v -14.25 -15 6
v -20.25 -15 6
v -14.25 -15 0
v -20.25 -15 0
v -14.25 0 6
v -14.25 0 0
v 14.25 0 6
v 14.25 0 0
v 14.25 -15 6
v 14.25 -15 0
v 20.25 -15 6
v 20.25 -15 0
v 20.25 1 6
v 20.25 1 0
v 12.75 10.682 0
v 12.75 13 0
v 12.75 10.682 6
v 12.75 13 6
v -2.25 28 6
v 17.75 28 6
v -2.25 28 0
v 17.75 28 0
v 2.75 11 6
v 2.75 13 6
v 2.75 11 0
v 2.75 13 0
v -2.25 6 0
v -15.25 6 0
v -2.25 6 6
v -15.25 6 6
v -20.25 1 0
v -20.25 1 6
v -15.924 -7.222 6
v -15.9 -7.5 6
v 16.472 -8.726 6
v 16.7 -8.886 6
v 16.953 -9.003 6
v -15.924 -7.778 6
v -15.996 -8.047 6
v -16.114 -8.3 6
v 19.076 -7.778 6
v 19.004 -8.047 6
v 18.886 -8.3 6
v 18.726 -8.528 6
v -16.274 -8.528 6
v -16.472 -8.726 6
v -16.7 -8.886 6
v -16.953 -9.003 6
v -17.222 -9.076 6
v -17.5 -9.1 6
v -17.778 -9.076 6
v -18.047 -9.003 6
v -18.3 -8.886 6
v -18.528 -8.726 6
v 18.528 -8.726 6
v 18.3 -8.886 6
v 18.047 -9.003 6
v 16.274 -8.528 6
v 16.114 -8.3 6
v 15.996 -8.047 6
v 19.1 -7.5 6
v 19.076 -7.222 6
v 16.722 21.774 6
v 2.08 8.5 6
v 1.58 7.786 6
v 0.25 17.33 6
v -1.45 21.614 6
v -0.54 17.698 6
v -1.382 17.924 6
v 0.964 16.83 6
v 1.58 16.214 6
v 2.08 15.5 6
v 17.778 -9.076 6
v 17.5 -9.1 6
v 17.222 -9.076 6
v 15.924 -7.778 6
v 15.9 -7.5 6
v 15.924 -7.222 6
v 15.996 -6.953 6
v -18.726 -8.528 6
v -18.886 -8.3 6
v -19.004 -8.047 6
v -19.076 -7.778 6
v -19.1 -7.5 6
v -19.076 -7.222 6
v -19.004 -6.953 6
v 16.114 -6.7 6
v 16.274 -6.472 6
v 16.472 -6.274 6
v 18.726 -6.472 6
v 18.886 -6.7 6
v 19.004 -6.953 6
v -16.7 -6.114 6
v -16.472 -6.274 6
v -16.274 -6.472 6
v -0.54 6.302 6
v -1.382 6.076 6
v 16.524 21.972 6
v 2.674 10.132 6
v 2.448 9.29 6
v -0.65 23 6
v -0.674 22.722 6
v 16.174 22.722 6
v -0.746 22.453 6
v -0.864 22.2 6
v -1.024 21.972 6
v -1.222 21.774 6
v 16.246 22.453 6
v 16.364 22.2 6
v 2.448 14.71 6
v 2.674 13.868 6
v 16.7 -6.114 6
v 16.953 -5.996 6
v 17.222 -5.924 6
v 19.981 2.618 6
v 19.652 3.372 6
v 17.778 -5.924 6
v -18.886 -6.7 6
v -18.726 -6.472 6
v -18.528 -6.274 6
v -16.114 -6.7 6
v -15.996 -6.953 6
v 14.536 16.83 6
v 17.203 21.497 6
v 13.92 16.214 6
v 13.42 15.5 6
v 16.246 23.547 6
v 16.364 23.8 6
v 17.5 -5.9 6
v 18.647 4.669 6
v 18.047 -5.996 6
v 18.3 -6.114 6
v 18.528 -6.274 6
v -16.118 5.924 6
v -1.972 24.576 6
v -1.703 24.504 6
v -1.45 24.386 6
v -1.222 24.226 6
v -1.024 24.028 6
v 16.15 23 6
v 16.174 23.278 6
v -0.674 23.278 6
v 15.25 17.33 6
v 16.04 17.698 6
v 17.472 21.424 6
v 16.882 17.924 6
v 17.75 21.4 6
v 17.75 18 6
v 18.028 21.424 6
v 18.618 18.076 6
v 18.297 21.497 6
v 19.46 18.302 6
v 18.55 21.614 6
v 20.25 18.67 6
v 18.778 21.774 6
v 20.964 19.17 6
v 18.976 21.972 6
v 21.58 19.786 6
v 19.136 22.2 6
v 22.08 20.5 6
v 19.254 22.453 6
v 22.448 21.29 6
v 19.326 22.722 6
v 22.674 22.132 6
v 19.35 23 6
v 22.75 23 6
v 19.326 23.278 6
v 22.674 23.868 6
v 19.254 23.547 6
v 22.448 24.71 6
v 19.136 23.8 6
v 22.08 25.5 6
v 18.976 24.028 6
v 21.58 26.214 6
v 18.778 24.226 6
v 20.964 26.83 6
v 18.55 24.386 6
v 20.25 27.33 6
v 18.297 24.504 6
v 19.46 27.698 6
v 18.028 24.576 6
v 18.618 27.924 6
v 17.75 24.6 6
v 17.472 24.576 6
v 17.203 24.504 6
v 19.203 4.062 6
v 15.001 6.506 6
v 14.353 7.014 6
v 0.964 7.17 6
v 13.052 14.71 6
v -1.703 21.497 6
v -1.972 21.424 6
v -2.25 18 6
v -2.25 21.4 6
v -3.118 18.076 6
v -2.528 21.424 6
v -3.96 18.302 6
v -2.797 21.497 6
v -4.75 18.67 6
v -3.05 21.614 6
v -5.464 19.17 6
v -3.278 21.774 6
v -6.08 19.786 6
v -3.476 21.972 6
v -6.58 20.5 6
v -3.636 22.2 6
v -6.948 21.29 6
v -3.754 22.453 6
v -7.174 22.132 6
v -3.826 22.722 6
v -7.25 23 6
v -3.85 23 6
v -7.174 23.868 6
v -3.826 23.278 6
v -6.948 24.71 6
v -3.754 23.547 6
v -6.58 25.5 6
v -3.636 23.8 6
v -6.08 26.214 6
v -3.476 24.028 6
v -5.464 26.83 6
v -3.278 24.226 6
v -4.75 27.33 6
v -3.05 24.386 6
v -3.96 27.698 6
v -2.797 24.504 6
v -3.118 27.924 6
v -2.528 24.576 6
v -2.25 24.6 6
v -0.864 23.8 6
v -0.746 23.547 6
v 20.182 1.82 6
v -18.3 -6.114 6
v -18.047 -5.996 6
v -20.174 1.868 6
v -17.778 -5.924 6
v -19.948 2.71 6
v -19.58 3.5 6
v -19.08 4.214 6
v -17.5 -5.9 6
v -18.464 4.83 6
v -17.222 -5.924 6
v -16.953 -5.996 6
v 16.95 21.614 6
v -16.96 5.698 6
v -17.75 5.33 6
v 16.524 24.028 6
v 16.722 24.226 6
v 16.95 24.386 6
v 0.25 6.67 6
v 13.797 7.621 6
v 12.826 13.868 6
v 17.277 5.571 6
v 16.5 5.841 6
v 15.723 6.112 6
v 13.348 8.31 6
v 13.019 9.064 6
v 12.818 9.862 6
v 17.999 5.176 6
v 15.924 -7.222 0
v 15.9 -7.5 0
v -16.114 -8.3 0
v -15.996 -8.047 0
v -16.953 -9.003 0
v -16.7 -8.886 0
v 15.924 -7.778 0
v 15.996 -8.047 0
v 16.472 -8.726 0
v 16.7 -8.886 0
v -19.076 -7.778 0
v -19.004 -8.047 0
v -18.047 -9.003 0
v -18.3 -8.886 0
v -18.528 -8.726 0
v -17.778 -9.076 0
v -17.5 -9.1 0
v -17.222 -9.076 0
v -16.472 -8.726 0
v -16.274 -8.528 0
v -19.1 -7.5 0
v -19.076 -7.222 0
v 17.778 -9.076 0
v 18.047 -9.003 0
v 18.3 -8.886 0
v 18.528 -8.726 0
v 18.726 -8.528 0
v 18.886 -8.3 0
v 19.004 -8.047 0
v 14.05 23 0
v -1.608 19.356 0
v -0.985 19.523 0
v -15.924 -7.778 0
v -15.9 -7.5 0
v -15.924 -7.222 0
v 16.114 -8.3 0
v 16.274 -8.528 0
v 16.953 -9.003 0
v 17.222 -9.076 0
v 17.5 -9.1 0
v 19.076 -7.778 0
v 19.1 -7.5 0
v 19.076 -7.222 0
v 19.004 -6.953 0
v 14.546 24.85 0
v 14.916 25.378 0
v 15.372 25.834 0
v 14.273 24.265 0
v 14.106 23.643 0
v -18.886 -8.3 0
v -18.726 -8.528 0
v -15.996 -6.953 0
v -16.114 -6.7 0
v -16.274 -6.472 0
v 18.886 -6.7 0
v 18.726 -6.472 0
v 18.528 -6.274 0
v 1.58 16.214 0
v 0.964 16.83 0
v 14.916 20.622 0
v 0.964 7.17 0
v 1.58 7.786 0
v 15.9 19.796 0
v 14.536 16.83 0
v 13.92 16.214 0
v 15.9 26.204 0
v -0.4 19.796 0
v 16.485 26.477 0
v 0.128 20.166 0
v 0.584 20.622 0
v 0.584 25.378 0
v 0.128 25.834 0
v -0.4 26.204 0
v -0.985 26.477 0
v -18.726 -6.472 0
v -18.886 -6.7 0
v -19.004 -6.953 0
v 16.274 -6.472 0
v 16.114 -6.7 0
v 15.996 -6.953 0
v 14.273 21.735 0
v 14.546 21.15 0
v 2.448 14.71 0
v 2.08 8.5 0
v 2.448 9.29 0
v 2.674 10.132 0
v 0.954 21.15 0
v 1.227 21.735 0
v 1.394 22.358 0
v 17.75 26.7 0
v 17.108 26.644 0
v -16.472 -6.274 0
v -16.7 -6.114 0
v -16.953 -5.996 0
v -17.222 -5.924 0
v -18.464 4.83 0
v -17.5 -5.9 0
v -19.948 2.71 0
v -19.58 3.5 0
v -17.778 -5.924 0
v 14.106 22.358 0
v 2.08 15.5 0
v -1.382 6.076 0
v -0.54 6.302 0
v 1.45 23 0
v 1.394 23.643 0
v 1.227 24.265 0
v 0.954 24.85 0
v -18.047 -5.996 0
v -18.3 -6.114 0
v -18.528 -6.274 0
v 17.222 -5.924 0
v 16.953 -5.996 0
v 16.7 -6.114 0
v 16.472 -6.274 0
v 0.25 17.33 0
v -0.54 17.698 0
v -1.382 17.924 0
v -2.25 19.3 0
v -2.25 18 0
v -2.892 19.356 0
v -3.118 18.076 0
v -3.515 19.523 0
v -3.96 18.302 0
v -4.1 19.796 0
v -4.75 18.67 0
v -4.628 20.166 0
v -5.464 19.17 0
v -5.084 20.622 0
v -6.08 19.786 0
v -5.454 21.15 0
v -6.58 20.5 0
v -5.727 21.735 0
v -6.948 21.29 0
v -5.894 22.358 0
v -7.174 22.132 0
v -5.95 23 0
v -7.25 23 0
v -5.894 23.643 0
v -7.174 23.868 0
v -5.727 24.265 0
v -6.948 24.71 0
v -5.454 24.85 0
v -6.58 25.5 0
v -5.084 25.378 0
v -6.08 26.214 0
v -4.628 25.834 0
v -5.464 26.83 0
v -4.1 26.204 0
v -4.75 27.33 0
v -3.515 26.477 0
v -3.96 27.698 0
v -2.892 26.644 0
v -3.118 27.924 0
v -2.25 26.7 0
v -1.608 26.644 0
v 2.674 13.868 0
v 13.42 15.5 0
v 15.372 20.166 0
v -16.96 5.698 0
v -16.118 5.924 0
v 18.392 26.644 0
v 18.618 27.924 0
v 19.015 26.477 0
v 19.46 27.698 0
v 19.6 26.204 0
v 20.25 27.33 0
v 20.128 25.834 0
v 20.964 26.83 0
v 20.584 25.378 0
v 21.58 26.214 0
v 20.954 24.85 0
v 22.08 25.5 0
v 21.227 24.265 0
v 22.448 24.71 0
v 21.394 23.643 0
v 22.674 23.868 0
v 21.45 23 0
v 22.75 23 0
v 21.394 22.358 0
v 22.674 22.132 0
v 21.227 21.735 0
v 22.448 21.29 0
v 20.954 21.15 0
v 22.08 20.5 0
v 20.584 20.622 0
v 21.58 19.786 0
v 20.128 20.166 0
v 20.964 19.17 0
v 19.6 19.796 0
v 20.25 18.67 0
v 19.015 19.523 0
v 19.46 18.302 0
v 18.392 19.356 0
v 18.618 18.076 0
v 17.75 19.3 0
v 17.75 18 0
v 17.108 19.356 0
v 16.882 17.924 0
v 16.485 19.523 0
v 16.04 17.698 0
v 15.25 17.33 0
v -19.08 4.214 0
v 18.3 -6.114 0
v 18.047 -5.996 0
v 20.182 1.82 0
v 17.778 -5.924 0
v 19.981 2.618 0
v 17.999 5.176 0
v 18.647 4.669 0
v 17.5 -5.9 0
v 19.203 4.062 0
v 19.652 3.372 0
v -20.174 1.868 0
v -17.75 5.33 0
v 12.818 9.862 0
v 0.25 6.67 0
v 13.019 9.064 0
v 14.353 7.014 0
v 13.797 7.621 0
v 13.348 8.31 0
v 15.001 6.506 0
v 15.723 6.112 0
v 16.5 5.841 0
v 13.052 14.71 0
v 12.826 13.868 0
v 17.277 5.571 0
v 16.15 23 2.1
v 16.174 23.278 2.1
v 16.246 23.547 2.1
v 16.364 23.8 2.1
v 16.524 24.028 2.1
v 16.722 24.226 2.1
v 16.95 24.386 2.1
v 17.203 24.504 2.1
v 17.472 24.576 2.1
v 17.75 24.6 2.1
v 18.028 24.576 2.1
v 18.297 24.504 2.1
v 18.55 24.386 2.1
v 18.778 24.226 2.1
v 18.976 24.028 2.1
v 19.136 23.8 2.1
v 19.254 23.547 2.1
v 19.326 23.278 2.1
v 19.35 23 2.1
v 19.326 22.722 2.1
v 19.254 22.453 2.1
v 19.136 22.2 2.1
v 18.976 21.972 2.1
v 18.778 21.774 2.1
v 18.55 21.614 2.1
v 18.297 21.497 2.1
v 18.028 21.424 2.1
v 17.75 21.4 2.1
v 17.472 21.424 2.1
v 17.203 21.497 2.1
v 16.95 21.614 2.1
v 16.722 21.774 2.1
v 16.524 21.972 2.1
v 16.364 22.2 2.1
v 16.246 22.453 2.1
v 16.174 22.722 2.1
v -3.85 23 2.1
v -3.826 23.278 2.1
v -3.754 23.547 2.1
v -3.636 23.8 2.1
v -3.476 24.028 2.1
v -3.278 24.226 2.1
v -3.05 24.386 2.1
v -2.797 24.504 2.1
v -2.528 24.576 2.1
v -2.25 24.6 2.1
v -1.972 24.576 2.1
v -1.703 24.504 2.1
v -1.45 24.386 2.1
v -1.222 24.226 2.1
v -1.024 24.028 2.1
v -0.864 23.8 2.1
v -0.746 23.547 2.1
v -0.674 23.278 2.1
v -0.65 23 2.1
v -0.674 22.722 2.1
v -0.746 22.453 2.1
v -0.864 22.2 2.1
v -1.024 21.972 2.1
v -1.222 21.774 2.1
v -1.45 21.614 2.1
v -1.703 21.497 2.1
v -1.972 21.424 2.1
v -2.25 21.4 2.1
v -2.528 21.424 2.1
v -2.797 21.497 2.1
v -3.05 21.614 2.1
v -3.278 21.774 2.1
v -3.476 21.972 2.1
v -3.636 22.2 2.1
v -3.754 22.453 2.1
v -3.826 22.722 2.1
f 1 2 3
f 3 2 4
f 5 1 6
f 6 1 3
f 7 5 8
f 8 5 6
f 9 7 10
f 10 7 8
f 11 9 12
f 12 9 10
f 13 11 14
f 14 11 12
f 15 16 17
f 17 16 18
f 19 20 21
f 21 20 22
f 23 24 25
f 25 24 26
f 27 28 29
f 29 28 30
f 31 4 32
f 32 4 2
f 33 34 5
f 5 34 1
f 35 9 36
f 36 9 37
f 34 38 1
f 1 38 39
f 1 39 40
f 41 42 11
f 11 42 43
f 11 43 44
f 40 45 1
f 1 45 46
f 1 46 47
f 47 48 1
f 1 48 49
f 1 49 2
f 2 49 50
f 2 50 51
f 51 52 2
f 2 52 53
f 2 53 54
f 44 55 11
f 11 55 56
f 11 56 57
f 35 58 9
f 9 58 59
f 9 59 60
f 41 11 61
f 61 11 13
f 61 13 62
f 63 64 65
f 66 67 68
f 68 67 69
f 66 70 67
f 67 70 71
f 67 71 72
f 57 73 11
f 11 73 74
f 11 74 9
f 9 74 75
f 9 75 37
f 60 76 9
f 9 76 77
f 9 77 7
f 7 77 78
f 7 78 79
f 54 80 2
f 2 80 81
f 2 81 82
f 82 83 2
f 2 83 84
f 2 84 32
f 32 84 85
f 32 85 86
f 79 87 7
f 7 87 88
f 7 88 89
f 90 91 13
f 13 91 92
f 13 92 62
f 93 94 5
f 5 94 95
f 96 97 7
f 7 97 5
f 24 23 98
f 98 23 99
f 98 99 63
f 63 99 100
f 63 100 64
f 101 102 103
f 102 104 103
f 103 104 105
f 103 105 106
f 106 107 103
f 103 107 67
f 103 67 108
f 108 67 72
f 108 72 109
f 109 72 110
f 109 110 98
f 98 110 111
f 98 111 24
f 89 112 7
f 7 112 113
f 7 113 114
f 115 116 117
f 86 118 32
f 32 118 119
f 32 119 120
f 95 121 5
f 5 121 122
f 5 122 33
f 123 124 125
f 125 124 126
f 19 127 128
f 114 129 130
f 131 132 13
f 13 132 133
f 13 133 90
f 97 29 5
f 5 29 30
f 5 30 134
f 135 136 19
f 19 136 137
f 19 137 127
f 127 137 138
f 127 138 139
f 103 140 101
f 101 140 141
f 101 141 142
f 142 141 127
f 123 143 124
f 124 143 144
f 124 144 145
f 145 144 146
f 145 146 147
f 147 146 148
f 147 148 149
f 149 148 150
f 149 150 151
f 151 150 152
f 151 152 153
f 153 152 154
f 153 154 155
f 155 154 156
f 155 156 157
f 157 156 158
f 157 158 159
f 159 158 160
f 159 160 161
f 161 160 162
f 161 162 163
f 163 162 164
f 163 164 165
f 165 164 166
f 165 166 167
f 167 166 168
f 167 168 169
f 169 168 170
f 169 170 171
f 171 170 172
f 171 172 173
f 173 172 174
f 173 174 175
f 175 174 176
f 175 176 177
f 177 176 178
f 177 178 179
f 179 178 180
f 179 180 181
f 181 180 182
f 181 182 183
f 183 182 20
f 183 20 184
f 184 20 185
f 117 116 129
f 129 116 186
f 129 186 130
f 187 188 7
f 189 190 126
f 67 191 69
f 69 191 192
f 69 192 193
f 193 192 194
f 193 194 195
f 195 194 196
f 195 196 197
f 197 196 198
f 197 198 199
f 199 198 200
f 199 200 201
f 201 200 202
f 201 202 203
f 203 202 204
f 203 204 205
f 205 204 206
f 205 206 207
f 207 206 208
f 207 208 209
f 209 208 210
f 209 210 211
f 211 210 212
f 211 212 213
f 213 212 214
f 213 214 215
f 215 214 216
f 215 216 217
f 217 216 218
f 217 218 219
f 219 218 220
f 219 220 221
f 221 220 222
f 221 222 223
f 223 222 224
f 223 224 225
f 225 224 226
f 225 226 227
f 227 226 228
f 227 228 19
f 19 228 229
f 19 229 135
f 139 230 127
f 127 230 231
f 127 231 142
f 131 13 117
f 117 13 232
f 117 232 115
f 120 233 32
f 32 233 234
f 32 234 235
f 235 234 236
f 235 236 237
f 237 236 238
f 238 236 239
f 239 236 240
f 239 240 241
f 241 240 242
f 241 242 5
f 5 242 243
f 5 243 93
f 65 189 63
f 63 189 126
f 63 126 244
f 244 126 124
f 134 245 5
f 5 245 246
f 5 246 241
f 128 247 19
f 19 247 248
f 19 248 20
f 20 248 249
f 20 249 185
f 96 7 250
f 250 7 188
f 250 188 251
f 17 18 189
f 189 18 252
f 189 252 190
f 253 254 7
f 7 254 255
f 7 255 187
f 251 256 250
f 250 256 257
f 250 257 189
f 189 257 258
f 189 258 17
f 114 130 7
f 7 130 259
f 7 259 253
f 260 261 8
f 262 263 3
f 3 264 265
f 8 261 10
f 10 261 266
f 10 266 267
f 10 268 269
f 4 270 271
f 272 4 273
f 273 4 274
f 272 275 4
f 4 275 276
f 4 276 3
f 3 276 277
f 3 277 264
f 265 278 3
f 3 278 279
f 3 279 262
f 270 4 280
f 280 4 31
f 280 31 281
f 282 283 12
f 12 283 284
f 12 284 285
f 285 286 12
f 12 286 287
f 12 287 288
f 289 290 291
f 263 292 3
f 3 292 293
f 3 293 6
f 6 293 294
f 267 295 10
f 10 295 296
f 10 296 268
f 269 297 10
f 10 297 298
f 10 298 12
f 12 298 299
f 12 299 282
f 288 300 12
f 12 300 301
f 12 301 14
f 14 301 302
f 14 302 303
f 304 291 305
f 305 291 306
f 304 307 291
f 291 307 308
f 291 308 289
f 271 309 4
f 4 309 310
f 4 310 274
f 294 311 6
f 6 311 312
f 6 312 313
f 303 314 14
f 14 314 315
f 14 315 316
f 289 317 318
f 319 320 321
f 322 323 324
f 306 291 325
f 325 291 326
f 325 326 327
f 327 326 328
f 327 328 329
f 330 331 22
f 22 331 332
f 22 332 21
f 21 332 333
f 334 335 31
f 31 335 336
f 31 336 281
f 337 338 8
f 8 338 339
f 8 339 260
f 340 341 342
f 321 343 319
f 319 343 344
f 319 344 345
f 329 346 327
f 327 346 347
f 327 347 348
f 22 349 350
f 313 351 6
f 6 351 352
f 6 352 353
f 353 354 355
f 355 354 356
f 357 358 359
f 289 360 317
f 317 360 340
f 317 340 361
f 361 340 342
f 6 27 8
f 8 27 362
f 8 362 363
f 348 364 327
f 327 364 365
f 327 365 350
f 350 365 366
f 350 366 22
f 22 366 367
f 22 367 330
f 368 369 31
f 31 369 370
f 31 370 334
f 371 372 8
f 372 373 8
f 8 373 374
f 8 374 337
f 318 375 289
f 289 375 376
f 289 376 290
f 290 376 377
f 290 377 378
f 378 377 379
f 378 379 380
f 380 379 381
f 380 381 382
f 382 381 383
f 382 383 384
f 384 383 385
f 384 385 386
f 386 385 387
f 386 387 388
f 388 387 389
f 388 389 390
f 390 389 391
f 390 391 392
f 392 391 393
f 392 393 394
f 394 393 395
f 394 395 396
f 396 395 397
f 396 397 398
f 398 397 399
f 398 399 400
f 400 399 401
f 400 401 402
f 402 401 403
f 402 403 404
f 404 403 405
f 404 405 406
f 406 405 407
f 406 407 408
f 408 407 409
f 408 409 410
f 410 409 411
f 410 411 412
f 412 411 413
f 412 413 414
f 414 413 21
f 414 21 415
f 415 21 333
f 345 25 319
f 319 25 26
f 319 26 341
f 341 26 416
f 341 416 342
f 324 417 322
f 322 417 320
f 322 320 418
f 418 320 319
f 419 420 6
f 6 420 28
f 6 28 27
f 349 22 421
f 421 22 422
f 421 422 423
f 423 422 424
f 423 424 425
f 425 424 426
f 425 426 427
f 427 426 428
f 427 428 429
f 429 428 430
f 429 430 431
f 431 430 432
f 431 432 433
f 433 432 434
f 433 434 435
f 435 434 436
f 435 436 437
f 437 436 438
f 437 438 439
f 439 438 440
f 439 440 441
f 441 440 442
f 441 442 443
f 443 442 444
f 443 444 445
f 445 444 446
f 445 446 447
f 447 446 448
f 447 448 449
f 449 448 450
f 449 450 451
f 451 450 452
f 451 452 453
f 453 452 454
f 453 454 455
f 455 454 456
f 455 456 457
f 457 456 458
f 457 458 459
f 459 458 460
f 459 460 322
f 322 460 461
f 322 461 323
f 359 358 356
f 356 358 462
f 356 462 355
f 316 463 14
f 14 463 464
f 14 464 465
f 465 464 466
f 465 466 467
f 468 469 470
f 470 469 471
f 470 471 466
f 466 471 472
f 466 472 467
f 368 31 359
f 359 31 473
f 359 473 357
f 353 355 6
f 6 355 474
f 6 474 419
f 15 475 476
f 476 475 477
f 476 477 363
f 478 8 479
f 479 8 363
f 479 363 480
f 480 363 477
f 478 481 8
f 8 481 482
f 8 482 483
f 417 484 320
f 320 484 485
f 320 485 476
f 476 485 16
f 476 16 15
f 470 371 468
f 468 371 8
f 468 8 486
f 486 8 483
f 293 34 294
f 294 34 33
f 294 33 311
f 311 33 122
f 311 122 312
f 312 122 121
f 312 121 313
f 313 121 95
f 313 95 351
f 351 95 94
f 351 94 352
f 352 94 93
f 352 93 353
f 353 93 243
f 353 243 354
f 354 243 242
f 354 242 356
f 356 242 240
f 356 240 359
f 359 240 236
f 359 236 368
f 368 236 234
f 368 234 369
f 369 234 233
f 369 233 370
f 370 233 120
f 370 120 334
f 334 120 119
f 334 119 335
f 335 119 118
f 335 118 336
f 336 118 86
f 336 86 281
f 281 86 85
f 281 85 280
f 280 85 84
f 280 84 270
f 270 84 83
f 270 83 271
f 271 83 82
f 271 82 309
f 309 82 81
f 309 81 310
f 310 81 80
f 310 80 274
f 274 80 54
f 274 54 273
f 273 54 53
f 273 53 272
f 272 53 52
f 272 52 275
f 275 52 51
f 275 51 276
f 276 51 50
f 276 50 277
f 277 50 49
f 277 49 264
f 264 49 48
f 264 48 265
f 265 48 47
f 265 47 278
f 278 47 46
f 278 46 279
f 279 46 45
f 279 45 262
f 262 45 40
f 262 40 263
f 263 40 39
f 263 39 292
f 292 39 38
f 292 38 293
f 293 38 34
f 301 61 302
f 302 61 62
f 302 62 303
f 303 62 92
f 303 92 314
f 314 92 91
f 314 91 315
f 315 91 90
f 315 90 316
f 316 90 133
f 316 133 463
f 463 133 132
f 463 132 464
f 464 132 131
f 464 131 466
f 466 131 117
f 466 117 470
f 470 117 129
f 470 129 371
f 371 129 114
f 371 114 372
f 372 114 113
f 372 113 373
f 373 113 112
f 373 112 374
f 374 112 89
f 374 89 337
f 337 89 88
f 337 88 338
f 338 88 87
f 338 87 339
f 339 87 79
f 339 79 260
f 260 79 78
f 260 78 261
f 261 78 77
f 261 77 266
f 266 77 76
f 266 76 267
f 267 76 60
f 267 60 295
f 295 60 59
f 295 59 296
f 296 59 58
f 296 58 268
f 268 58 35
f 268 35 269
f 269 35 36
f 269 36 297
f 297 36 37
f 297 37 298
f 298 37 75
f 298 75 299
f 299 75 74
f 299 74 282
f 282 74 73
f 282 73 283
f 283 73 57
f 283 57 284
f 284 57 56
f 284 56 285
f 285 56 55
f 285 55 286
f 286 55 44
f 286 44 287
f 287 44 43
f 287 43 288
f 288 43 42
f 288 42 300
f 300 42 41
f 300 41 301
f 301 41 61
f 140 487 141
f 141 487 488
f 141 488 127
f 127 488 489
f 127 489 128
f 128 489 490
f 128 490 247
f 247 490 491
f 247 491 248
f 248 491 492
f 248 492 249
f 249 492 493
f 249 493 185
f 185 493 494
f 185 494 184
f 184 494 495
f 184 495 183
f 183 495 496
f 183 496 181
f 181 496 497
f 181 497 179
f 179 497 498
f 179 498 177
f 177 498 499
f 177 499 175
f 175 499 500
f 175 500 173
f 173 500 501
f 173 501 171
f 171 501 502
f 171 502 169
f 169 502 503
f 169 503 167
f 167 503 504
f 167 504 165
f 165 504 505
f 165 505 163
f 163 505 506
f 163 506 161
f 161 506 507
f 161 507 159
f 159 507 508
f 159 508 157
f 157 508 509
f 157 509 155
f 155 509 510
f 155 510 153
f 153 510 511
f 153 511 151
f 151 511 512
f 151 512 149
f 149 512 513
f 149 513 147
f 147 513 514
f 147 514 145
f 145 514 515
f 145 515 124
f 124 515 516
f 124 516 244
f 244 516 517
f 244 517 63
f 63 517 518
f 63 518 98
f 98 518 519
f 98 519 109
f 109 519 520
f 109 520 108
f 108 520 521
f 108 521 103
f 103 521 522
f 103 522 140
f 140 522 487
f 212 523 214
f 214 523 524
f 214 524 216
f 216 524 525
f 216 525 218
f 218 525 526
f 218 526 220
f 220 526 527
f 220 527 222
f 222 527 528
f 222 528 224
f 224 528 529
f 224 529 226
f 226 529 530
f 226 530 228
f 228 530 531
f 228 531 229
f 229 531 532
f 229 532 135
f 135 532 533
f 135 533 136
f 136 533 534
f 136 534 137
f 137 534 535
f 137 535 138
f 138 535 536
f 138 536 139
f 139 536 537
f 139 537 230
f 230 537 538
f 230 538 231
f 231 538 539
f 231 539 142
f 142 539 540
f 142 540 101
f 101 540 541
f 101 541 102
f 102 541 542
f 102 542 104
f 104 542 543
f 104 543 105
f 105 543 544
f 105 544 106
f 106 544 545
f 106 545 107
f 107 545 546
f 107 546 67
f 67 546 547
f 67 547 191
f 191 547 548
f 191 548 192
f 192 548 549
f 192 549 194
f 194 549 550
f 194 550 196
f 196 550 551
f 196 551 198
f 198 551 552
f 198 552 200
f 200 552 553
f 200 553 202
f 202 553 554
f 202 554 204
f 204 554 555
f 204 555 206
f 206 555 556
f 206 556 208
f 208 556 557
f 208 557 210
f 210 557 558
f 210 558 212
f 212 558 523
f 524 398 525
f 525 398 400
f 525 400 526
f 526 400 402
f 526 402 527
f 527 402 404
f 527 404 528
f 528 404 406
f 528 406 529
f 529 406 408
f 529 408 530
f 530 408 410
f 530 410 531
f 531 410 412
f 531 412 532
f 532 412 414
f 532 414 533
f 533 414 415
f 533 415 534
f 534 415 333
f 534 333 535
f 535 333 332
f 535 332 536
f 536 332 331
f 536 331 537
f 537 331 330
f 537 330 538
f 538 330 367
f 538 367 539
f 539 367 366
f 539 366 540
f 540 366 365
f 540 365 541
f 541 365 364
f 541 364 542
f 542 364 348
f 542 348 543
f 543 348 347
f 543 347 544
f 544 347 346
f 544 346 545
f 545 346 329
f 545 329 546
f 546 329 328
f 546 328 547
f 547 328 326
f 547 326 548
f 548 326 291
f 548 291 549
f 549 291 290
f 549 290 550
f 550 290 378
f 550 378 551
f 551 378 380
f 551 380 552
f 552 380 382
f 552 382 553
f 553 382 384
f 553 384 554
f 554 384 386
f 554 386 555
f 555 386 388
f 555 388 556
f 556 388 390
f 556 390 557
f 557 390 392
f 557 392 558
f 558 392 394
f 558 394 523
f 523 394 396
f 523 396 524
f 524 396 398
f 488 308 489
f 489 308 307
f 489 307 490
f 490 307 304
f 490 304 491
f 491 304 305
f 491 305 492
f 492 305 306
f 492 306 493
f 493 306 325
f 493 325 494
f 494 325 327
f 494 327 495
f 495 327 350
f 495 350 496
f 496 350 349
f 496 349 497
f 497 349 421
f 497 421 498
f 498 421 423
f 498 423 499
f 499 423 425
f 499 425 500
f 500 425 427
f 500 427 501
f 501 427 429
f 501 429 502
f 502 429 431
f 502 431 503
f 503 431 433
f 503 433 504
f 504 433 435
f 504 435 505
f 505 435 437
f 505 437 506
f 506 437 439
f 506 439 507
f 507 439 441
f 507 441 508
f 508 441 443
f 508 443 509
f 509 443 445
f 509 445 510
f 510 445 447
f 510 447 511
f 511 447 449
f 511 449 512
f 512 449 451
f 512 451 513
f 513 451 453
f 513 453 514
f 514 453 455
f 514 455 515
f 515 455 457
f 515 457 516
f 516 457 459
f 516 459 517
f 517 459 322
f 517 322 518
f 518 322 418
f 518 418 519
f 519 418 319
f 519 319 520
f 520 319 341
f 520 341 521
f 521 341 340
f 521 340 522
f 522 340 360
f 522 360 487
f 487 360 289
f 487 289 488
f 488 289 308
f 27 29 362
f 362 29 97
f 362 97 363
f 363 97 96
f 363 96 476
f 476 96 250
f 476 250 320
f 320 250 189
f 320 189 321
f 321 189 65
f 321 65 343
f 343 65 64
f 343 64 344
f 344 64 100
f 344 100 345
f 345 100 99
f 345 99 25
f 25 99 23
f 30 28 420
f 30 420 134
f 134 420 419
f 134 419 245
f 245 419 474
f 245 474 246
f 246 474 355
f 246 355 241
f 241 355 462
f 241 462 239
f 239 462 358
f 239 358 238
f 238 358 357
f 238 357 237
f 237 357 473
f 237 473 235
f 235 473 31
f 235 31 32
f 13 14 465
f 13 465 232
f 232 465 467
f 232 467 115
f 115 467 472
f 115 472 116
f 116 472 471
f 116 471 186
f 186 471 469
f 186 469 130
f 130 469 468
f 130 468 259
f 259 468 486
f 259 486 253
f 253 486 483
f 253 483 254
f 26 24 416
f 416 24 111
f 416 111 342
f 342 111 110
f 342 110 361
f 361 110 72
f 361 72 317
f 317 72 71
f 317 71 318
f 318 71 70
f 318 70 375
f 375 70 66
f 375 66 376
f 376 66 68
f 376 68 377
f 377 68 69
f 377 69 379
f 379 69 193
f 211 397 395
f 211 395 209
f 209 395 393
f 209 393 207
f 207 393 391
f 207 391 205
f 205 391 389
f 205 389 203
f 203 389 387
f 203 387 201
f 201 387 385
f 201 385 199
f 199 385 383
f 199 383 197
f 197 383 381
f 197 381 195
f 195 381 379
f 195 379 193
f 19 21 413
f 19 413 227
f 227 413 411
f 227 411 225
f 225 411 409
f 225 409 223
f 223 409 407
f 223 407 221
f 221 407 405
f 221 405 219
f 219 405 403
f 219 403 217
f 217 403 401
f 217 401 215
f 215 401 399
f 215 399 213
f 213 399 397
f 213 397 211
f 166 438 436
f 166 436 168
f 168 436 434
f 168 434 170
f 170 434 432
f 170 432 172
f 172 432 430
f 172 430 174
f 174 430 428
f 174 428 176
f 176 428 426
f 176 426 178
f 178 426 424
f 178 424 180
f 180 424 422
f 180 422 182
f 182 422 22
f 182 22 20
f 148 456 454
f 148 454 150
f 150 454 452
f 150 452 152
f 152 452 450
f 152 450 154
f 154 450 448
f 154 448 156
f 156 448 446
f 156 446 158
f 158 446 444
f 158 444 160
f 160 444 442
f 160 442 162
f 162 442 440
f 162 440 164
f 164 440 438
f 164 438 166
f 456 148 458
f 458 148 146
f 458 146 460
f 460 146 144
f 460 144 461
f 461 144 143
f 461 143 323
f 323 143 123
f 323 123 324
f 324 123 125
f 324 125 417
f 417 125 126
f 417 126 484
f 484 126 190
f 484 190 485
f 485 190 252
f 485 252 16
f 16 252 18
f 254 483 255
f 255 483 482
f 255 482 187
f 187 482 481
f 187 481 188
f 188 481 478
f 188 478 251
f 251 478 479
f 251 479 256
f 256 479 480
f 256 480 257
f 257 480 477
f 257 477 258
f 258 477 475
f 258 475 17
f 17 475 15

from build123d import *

# Parameters (mm, degrees)
BOSS_EXTRU_1_DEPTH      = 6
ESQUISSE2_R             = 1.6
ENL_V_MAT_EXTRU_1_DEPTH = 10
ESQUISSE4_R             = 1.6
ENL_V_MAT_EXTRU_2_DEPTH = 37.572701568
CHANFREIN1_SIZE         = 2.1
CONG_1_R                = 5
CONG_2_R                = 5


with BuildPart() as part:
    # Esquisse1 → Boss.-Extru.1 (new body)
    with BuildSketch(Plane.XY):
        Polygon((12.75, 18), (22.75, 18), (22.75, 28), (-7.25, 28), (-7.25, 18), (2.75, 18), (2.75, 6), (-20.25, 6), (-20.25, 0), (-20.25, -15), (-14.25, -15), (-14.25, 0), (14.25, 0), (14.25, -15), (20.25, -15), (20.25, -0.694767442), (20.25, 6), (12.75, 6), align=None)
    extrude(amount=BOSS_EXTRU_1_DEPTH)

    # Esquisse2 → Enlèv. mat.-Extru.1 (cut)
    with BuildSketch(Plane.XY.offset(6)):
        with Locations((-17.5, -7.5)):
            Circle(ESQUISSE2_R)
        with Locations((17.5, -7.5)):
            Circle(ESQUISSE2_R)
    extrude(amount=-ENL_V_MAT_EXTRU_1_DEPTH, mode=Mode.SUBTRACT)

    # Esquisse4 → Enlèv. mat.-Extru.2 (cut, through all)
    with BuildSketch(Plane(origin=(0, 0, 0), x_dir=(-1, 0, 0), z_dir=(0, 0, -1))):
        with Locations((-17.75, 23)):
            Circle(ESQUISSE4_R)
        with Locations((2.25, 23)):
            Circle(ESQUISSE4_R)
    extrude(amount=-ENL_V_MAT_EXTRU_2_DEPTH, mode=Mode.SUBTRACT)

    # Chanfrein1
    chanfrein1_edges = [part.edges().sort_by_distance(p)[0] for p in [
        (19.35, 23, 0),
        (-0.65, 23, 0),
    ]]
    chamfer(chanfrein1_edges, length=CHANFREIN1_SIZE)

    # Congé1
    cong_1_edges = [part.edges().sort_by_distance(p)[0] for p in [
        (2.75, 6, 3),
        (-20.25, 6, 3),
        (20.25, 6, 3),
        (-7.25, 28, 3),
        (-7.25, 18, 3),
        (2.75, 18, 3),
        (12.75, 18, 3),
        (22.75, 18, 3),
        (22.75, 28, 3),
    ]]
    fillet(cong_1_edges, radius=CONG_1_R - 0.0001)  # a hair under: the kernel refuses the full size

    # Congé2
    cong_2_edges = [part.edges().sort_by_distance(p)[0] for p in [
        (12.75, 6, 3),
    ]]
    fillet(cong_2_edges, radius=CONG_2_R)


solid = part.part
